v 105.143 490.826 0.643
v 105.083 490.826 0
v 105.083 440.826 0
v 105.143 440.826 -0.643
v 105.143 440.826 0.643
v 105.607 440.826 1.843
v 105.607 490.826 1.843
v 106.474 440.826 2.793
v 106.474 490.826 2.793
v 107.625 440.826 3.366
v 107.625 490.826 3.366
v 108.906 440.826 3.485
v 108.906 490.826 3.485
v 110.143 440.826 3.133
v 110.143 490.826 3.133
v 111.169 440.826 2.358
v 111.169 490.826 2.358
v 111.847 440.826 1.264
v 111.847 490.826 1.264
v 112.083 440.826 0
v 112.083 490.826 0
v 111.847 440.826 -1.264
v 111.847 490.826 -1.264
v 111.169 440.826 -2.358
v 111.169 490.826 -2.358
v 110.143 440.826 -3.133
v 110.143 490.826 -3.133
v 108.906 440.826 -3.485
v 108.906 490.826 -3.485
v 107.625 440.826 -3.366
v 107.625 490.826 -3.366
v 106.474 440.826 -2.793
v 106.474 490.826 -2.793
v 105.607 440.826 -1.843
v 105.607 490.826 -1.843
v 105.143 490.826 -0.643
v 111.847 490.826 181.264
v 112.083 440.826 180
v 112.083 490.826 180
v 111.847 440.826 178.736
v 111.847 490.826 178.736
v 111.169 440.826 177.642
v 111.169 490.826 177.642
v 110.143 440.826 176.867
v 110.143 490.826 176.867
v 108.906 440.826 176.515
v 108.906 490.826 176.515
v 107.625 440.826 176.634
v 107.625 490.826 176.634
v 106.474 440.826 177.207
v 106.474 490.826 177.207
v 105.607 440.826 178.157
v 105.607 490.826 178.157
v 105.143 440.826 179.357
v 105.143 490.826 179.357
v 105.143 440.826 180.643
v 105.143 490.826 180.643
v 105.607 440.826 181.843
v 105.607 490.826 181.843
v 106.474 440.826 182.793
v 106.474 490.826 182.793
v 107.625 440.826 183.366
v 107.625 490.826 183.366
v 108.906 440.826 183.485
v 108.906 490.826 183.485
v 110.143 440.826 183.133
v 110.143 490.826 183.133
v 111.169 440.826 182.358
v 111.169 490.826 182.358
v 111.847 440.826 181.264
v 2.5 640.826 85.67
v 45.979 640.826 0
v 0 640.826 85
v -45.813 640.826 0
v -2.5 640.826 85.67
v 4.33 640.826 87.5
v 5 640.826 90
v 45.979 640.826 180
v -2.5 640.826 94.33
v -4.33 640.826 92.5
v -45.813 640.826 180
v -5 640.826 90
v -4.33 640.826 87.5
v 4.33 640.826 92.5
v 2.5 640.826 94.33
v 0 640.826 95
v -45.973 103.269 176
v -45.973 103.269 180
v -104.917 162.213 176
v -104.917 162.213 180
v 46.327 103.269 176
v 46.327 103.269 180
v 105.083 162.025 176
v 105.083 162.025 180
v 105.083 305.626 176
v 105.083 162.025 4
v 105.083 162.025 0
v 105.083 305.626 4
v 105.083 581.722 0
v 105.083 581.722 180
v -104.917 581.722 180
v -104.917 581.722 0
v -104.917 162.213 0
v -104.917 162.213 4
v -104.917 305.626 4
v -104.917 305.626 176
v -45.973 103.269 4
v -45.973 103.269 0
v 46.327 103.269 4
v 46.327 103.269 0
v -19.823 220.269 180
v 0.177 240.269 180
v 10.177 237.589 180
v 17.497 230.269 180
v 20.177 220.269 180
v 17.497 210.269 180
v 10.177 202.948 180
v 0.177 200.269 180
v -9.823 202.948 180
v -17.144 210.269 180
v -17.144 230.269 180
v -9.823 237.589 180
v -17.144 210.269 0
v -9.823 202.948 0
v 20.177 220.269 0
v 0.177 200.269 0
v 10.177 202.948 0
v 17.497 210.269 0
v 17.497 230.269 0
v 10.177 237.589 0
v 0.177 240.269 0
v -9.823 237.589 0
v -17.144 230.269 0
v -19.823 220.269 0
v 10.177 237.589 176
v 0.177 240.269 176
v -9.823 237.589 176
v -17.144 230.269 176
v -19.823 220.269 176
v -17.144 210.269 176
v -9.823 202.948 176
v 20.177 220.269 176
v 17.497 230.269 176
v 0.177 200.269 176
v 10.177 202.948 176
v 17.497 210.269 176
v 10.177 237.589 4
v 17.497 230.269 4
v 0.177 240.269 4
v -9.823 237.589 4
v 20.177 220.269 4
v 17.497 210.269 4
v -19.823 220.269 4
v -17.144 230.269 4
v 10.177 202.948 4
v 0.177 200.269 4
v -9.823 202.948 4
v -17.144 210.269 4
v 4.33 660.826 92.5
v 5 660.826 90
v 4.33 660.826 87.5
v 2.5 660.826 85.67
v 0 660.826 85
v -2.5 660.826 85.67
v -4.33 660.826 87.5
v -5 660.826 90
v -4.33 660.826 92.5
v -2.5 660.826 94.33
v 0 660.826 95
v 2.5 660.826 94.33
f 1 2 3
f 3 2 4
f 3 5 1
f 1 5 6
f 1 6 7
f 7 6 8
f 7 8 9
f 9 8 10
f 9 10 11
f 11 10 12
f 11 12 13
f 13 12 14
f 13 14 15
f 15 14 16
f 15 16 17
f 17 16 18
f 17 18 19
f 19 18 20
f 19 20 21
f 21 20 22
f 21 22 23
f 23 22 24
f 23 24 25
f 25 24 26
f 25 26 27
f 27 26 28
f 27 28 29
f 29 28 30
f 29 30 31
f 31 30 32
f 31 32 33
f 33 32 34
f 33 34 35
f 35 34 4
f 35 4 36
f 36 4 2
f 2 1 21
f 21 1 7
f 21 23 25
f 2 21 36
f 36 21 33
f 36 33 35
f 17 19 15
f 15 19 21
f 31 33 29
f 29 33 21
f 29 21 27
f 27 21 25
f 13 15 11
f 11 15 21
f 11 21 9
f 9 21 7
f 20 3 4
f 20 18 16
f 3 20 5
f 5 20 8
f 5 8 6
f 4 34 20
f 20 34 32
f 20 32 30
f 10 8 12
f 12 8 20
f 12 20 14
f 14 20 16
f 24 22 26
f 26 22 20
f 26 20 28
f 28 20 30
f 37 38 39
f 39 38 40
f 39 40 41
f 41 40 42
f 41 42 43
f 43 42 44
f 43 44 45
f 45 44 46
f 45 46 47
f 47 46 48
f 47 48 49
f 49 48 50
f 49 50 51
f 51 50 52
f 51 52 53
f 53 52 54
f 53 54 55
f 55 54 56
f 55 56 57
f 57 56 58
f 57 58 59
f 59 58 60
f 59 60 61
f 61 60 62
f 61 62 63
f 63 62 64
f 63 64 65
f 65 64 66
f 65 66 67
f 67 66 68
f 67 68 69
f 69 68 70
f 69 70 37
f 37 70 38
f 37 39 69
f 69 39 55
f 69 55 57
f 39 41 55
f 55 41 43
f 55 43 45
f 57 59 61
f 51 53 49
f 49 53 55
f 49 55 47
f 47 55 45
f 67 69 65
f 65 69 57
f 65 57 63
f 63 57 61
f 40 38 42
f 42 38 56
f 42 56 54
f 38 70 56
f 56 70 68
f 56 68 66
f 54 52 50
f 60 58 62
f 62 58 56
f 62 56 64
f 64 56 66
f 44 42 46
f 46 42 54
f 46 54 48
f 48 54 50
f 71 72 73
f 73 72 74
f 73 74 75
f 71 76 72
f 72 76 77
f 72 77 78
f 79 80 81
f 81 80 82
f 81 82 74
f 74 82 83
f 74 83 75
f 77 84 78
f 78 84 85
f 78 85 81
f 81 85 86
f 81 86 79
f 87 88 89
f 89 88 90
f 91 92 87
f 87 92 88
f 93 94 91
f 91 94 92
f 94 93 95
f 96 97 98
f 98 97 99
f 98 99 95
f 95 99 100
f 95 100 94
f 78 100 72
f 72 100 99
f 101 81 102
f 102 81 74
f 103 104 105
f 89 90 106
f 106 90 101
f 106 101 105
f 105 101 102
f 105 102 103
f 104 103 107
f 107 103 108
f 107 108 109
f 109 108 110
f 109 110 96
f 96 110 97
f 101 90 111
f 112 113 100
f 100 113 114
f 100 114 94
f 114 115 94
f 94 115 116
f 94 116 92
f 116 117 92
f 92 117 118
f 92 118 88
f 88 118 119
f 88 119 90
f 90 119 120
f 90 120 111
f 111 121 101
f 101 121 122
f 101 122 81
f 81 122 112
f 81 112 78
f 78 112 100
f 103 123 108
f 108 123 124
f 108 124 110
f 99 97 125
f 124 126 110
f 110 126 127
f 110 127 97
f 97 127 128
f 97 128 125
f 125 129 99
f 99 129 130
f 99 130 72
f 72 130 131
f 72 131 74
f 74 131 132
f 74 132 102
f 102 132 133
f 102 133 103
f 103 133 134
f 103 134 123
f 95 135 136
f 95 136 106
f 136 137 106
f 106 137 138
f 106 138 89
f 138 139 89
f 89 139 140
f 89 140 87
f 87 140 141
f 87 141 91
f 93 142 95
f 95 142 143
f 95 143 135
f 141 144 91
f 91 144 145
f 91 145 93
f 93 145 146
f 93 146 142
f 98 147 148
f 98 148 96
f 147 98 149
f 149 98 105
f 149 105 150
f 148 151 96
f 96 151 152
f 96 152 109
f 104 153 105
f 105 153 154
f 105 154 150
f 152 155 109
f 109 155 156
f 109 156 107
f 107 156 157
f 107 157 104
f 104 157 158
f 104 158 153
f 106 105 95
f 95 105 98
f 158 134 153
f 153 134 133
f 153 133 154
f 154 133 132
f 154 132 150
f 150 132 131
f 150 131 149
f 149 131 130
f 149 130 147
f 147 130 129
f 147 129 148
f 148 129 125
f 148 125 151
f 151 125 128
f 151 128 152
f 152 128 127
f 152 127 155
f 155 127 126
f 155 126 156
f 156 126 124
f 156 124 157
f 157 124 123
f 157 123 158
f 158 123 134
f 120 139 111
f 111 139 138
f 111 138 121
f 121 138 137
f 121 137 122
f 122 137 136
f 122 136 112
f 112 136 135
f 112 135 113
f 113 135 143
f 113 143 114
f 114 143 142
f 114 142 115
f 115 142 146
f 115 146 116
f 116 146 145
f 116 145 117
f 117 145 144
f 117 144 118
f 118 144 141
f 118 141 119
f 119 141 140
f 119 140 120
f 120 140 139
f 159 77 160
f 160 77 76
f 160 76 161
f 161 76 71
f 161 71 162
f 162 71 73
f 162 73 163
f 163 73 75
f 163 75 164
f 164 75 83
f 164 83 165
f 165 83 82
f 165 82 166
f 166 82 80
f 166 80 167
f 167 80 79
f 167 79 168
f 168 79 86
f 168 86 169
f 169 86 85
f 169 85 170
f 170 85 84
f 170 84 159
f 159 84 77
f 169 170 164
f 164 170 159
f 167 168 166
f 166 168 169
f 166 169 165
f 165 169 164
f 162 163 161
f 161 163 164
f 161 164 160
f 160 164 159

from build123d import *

# Parameters (mm, degrees)
EXTRUDE_1_DEPTH       = 180
SKETCH1_W             = 172
SKETCH1_H             = 208.862338185
CUT_EXTRUDE1_DEPTH    = 698.966972306
SKETCH2_R             = 20
CUT_EXTRUDE2_DEPTH    = 674.869657154
SKETCH3_R             = 3.5
BOSS_EXTRUDE1_DEPTH   = 50
BOSS_EXTRUDE1_2_DEPTH = 50
SKETCH4_R             = 5
BOSS_EXTRUDE2_DEPTH   = 20


with BuildPart() as part:
    # Эскиз1 → Вытянуть1 (new body)
    with BuildSketch(Plane.XY):
        Polygon((105.082921559, 581.722068254), (45.979042749, 640.825947064), (-45.813199631, 640.825947064), (-104.917078441, 581.722068254), (-104.917078441, 162.212880509), (-45.97317451, 103.268976578), (46.326817337, 103.268976578), (105.082921559, 162.0250808), align=None)
    extrude(amount=EXTRUDE_1_DEPTH)

    # Sketch1 → Cut-Extrude1 (cut, through all)
    with BuildSketch(Plane(origin=(105.082921559, 0, 0), x_dir=(0, 0, -1), z_dir=(1, 0, 0))):
        with Locations((-90, 201.194997681)):
            Rectangle(SKETCH1_W, SKETCH1_H)
    extrude(amount=-CUT_EXTRUDE1_DEPTH, mode=Mode.SUBTRACT)

    # Sketch2 → Cut-Extrude2 (cut, through all)
    with BuildSketch(Plane(origin=(0, 0, 0), x_dir=(-1, 0, 0), z_dir=(0, 0, -1))):
        with Locations((-0.176821413, 220.268976578)):
            Circle(SKETCH2_R)
    extrude(amount=-CUT_EXTRUDE2_DEPTH, mode=Mode.SUBTRACT)

    # Sketch4 → Boss-Extrude2 (add)
    with BuildSketch(Plane(origin=(0, 640.825947064, 0), x_dir=(1, 0, 0), z_dir=(0, 1, 0))):
        with Locations((0, -90)):
            Circle(SKETCH4_R)
    extrude(amount=BOSS_EXTRUDE2_DEPTH)


with BuildPart() as body_2:
    # Sketch3 → Boss-Extrude1 (new body)
    with BuildSketch(Plane(origin=(0, 440.825947064, 0), x_dir=(1, 0, 0), z_dir=(0, 1, 0))):
        with Locations(Location((108.582921559, 0, 0), (0, 0, 180))):
            Circle(SKETCH3_R)
    extrude(amount=BOSS_EXTRUDE1_DEPTH)


with BuildPart() as body_3:
    # Sketch3 → Boss-Extrude1 2 (new body)
    with BuildSketch(Plane(origin=(0, 440.825947064, 0), x_dir=(1, 0, 0), z_dir=(0, 1, 0))):
        with Locations((108.582921559, -180)):
            Circle(SKETCH3_R)
    extrude(amount=BOSS_EXTRUDE1_2_DEPTH)


solid = Compound([part.part, body_2.part, body_3.part])
